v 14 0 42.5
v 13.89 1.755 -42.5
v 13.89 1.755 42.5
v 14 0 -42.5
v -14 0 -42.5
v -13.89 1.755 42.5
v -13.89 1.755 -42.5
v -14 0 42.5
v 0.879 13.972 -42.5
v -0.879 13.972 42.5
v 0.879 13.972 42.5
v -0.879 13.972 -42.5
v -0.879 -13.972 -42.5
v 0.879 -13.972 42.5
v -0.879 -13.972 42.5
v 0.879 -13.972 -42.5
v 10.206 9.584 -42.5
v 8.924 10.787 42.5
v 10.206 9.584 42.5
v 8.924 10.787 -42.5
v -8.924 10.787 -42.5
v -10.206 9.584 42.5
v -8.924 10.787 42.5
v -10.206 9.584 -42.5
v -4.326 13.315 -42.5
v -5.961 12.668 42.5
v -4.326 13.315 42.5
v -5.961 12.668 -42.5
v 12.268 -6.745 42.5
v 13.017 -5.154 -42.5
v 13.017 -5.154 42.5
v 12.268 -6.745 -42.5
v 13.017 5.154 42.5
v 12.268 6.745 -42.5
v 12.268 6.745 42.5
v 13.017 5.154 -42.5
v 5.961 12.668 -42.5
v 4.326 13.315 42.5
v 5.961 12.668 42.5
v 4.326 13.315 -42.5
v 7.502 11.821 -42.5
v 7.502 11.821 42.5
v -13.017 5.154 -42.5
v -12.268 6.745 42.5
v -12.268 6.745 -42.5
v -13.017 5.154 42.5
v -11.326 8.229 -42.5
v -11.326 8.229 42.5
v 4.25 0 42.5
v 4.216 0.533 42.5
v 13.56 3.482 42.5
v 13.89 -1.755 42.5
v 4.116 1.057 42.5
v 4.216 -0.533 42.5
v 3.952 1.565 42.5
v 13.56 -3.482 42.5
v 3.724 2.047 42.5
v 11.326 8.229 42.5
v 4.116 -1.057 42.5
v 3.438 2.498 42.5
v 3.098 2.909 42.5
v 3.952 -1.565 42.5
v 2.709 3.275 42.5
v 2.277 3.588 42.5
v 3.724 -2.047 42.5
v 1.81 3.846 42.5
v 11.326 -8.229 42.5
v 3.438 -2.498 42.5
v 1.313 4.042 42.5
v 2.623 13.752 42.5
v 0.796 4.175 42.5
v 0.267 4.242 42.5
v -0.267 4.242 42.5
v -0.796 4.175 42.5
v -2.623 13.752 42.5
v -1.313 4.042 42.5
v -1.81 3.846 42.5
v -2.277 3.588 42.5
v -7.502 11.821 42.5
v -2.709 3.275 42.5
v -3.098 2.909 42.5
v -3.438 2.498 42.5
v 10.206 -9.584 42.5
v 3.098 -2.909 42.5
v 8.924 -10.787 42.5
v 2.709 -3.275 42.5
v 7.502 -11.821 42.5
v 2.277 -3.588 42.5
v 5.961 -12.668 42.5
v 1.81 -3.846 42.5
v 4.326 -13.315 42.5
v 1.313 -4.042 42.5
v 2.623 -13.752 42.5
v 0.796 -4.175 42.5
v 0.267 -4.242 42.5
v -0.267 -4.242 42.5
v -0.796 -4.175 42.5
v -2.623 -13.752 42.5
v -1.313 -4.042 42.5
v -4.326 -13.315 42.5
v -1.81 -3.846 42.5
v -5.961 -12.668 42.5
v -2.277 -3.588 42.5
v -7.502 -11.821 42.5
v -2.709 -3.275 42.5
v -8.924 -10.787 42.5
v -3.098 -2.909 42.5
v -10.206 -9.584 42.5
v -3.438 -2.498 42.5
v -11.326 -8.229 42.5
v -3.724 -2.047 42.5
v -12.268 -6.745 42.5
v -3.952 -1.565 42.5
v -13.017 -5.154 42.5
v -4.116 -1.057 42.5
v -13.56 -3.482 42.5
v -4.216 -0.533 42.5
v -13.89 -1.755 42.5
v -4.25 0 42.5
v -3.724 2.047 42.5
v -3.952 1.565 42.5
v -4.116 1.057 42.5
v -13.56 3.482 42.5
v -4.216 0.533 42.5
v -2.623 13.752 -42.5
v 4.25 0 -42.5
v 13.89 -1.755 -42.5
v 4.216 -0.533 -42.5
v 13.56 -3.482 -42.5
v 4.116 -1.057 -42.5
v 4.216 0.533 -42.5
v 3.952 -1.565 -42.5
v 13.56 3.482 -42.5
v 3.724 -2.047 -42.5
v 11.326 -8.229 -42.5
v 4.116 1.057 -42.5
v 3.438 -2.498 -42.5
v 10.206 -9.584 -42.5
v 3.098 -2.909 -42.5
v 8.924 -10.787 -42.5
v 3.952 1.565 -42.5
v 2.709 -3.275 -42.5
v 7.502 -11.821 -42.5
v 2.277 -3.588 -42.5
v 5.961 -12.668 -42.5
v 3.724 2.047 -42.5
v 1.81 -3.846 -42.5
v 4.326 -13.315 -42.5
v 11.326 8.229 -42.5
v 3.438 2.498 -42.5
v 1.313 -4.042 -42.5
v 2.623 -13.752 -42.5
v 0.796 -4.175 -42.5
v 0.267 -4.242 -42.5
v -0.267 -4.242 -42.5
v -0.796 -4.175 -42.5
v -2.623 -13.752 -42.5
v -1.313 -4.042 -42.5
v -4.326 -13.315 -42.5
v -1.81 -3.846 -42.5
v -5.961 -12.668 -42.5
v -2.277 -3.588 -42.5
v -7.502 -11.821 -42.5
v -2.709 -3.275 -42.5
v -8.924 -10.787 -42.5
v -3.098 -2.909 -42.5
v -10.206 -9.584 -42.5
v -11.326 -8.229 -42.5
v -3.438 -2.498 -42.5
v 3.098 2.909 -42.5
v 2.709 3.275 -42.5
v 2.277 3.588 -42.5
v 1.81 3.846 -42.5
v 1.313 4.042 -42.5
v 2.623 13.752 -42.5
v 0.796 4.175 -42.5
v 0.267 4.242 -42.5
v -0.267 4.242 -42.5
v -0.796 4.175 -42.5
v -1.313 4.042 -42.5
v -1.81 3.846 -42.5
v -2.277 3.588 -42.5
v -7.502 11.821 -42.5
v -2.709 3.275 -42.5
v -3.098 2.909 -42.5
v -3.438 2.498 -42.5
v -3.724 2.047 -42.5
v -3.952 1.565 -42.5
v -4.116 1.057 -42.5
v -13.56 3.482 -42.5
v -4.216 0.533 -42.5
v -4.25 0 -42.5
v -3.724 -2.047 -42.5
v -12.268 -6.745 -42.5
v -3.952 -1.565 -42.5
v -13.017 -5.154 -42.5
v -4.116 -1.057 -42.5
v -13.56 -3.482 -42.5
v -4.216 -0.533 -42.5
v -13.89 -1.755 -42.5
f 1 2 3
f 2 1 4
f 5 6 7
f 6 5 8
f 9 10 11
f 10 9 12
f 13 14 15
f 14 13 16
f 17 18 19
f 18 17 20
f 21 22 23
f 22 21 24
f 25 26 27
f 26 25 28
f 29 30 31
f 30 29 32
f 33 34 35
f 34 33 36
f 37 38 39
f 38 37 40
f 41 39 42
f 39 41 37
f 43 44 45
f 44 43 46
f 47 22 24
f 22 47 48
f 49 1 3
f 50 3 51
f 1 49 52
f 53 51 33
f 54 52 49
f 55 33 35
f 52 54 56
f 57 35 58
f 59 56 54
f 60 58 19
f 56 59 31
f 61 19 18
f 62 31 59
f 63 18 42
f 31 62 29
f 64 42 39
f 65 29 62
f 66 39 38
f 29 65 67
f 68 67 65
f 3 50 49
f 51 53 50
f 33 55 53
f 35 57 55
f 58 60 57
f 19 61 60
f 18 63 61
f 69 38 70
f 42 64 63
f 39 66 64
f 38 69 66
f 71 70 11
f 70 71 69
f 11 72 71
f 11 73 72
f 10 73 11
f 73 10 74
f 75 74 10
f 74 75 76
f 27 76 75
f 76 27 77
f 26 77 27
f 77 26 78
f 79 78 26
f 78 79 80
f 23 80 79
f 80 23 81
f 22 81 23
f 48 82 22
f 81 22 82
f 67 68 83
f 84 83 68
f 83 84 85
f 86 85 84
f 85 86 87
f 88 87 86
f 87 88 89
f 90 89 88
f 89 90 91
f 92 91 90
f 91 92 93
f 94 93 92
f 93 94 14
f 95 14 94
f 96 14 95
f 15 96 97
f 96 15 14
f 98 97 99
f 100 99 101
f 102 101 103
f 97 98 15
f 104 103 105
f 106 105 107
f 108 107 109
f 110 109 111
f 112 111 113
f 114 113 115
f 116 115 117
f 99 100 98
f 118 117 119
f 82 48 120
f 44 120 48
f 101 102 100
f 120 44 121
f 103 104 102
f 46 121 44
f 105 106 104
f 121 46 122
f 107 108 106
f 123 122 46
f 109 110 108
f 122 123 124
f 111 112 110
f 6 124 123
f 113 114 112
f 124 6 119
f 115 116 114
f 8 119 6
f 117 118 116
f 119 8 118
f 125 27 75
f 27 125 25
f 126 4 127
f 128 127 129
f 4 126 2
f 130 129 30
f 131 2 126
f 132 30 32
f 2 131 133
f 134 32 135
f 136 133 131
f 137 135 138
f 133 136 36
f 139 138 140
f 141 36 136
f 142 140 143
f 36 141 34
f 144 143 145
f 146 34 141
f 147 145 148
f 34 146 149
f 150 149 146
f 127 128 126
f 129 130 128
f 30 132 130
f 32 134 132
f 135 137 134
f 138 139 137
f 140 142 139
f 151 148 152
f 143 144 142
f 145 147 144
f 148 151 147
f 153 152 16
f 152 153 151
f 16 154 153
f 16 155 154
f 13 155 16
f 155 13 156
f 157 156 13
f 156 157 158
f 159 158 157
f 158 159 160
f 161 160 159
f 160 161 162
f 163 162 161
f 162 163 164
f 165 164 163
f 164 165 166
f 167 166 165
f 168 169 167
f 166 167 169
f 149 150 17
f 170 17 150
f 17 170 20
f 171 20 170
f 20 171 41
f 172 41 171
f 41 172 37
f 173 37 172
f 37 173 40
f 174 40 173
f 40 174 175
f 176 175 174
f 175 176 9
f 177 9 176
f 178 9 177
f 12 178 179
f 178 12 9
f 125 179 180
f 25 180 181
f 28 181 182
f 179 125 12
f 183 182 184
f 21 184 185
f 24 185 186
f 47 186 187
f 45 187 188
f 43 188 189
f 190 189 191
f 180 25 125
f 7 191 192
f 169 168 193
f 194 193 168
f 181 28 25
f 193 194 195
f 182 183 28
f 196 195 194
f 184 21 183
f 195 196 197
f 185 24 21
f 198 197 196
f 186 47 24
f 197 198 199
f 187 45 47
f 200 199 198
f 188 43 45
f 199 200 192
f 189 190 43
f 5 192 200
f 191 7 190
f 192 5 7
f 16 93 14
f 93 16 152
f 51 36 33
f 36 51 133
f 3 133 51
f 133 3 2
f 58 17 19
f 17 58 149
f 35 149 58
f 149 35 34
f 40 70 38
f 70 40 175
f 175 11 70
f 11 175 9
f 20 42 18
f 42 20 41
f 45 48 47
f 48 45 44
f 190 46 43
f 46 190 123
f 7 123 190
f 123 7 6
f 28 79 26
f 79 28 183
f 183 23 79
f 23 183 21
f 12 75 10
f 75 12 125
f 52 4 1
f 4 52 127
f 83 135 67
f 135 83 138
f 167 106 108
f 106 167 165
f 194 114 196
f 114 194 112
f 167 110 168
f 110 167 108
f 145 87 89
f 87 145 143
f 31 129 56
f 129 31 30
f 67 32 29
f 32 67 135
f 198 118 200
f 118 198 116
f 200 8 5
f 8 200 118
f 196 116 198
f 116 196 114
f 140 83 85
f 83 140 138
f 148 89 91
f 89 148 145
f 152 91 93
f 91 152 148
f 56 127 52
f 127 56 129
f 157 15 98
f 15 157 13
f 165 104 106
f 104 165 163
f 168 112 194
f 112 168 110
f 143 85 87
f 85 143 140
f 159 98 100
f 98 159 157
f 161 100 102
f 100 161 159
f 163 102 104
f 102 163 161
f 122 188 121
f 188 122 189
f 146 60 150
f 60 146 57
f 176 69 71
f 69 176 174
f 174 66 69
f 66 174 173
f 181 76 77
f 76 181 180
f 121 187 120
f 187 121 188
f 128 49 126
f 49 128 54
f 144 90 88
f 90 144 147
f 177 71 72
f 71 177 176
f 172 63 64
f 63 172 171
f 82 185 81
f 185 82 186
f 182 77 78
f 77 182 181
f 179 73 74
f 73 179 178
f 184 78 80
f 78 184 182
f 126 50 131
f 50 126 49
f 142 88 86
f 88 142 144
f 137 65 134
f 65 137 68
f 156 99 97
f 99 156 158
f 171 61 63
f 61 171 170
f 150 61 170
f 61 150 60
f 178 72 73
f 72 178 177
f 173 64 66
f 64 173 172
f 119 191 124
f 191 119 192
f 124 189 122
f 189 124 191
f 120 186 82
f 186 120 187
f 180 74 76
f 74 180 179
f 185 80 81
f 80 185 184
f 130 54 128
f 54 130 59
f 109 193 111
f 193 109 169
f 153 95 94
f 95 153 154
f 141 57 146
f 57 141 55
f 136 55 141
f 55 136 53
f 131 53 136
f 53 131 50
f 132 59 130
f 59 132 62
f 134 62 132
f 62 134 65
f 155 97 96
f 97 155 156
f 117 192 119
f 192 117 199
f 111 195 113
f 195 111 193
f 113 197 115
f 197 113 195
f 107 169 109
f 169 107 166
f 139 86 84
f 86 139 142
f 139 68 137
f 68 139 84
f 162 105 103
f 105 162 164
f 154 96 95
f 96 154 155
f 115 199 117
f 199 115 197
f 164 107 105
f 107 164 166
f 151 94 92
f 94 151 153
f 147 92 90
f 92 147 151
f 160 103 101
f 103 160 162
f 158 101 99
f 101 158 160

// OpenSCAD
$fn = 50;


difference() {
	union() {
		translate(v = [0, 0, -42.5000000000]) {
			cylinder(h = 85, r = 14.0000000000);
		}
	}
	union() {
		translate(v = [0, 0, -100.0000000000]) {
			cylinder(h = 200, r = 4.2500000000);
		}
	}
}
